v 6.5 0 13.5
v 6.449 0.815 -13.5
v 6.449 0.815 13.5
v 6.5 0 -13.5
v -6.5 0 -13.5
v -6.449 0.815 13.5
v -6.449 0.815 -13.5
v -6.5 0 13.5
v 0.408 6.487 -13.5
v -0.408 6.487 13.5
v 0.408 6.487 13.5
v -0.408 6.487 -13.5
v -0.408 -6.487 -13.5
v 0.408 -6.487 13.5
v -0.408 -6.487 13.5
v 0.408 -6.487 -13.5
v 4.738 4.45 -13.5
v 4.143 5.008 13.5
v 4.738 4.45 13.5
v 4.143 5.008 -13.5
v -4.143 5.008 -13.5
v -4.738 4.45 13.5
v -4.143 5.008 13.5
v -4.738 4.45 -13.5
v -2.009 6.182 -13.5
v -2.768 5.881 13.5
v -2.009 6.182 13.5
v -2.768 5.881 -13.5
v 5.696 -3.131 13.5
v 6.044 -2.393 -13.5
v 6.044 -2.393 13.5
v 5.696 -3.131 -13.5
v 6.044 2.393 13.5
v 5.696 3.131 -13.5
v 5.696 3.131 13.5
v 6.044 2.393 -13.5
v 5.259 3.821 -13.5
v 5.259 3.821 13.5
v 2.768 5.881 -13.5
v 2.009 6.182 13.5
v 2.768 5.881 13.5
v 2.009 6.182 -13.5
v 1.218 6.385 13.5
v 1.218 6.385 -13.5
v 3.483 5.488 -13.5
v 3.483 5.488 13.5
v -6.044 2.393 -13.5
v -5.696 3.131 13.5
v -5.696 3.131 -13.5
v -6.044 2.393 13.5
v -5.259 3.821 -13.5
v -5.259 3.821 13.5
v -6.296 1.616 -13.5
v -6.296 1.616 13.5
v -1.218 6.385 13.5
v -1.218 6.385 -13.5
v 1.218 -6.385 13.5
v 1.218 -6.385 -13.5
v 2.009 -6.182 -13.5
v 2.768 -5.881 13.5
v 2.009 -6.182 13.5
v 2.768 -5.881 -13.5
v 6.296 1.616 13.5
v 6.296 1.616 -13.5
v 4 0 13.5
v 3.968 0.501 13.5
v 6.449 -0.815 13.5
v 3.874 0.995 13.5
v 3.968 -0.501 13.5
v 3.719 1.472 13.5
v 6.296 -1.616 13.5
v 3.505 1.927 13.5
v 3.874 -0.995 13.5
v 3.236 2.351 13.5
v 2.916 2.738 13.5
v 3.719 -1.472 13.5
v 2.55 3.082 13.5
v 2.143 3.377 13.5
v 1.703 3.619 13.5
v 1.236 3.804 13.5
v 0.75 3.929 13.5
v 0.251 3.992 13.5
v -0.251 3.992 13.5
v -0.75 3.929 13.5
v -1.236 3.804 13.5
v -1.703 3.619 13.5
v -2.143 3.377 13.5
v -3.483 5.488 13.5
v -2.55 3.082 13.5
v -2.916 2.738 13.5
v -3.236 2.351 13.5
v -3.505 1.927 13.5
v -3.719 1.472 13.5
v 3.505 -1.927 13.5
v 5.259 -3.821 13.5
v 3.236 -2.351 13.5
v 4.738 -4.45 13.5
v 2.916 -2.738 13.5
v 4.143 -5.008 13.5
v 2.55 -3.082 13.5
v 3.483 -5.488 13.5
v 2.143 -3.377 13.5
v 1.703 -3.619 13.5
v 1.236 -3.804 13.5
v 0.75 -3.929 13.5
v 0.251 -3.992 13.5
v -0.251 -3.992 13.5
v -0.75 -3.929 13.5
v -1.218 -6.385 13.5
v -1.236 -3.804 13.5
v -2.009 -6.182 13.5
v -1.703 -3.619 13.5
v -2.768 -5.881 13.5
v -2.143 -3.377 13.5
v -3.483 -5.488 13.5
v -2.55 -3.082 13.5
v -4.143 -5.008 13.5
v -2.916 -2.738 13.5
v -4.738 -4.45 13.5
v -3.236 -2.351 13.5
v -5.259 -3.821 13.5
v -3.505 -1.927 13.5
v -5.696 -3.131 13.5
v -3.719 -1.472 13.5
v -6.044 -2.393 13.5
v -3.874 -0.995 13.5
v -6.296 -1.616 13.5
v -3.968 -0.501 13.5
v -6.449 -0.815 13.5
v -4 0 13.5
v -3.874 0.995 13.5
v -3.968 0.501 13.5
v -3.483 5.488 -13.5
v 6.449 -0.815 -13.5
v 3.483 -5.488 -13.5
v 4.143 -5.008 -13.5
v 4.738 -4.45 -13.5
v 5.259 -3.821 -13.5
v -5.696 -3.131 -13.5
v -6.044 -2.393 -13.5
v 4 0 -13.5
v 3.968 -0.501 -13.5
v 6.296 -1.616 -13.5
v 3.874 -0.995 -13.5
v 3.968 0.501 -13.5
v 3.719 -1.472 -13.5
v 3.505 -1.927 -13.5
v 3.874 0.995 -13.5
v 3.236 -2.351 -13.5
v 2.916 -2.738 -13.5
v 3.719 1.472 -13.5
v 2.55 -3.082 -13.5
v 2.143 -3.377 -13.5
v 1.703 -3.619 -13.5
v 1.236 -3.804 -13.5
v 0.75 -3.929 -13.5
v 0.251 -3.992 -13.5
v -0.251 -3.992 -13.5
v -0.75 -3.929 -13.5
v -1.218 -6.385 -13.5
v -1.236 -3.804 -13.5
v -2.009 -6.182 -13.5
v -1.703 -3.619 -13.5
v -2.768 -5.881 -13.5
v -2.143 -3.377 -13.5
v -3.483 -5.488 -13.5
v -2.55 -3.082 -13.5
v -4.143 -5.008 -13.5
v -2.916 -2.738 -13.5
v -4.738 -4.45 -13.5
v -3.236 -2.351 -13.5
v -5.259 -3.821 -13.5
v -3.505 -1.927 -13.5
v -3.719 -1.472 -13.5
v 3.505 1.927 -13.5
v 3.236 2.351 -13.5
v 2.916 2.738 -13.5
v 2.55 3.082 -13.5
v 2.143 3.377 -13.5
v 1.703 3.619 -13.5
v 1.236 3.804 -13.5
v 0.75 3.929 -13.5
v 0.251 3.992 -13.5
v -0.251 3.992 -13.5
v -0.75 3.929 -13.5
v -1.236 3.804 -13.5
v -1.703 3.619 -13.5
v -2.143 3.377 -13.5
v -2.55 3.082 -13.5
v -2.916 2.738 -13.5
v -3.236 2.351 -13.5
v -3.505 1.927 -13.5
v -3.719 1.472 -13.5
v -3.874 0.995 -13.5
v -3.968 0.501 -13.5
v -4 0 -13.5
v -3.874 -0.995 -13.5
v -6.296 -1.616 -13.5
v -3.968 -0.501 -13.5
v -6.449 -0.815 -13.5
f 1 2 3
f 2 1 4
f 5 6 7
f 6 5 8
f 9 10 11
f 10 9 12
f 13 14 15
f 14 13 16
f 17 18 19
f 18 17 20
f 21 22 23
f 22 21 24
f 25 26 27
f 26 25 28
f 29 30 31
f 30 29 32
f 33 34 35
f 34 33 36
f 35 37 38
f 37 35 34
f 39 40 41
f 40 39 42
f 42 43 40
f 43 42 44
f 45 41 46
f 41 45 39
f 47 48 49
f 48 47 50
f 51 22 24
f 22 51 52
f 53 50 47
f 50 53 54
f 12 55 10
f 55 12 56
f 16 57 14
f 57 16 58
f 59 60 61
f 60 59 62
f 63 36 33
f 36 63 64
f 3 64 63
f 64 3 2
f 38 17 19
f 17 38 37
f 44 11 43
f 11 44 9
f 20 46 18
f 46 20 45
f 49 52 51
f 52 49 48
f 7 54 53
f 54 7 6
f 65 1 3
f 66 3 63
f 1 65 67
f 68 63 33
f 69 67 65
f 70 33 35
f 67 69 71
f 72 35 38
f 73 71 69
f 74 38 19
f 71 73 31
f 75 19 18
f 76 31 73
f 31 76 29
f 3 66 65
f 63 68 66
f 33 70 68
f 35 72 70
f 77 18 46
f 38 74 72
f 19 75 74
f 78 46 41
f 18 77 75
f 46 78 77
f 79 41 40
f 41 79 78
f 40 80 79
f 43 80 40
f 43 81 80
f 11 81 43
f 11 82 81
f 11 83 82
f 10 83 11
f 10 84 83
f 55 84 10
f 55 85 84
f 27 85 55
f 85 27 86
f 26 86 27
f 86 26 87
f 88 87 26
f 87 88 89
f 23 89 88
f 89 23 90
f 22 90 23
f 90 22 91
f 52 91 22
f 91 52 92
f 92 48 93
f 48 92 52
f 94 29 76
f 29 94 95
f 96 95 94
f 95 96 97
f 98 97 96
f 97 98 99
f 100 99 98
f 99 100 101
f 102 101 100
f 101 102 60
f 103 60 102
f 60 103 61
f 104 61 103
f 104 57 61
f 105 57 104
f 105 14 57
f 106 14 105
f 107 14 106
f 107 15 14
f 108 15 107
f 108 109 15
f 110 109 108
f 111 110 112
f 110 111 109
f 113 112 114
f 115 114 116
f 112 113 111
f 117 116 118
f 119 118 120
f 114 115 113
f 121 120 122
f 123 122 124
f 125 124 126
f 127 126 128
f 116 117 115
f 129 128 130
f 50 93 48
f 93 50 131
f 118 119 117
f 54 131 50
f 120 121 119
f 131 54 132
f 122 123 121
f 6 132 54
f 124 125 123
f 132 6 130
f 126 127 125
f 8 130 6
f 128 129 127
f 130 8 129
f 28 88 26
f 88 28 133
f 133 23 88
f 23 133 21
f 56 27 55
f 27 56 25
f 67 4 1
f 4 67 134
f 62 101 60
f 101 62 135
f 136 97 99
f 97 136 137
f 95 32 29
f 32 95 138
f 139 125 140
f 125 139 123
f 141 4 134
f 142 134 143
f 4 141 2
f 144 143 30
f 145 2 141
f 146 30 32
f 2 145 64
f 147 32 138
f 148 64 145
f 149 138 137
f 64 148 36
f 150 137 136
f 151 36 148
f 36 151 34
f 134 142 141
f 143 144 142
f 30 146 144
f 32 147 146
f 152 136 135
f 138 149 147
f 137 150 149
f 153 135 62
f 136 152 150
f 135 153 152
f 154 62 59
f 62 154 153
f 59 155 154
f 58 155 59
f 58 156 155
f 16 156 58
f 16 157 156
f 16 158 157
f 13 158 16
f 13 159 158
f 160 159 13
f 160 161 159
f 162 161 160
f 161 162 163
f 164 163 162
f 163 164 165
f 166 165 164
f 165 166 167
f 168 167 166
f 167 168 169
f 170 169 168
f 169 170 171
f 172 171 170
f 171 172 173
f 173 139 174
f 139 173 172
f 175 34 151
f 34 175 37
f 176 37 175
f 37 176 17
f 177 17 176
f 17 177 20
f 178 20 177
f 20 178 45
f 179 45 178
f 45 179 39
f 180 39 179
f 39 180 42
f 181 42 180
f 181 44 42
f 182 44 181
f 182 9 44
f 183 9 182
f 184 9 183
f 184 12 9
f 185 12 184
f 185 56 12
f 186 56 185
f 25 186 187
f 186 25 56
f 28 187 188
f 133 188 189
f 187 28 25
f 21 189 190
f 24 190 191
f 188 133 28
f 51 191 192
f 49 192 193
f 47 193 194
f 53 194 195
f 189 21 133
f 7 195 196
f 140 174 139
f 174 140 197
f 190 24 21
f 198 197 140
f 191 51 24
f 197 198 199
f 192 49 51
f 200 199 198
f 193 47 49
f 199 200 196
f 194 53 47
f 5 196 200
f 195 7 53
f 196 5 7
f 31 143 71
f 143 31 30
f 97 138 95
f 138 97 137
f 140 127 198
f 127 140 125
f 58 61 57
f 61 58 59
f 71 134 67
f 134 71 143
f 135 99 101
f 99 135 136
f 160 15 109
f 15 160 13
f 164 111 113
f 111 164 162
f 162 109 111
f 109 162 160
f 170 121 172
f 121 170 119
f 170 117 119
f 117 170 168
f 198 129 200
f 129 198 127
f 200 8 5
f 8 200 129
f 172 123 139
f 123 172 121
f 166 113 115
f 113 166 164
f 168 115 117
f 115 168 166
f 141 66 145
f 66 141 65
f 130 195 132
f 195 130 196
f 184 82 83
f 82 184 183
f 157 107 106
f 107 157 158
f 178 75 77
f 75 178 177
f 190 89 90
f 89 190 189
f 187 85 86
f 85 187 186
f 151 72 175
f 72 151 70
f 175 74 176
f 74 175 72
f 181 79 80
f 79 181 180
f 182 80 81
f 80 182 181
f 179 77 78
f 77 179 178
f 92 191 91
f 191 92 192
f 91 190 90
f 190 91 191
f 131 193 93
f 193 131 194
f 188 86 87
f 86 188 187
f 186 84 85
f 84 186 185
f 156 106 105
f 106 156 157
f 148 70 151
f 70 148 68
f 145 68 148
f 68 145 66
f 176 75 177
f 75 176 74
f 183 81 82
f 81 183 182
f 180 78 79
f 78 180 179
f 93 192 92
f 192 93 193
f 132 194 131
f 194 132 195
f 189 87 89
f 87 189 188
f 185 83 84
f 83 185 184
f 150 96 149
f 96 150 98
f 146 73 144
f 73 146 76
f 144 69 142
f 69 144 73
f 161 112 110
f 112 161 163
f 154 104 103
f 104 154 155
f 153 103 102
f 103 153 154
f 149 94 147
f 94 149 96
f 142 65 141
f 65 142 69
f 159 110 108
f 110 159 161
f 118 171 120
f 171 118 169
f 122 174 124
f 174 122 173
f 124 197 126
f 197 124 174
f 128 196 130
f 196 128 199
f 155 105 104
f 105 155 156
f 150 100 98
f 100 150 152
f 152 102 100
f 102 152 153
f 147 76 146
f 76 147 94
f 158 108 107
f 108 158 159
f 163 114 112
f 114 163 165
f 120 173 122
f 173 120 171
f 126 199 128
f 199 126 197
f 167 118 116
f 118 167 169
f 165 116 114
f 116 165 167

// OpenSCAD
$fn = 50;


difference() {
	union() {
		translate(v = [0, 0, -13.5000000000]) {
			cylinder(h = 27, r = 6.5000000000);
		}
	}
	union() {
		translate(v = [0, 0, -100.0000000000]) {
			cylinder(h = 200, r = 4);
		}
	}
}
